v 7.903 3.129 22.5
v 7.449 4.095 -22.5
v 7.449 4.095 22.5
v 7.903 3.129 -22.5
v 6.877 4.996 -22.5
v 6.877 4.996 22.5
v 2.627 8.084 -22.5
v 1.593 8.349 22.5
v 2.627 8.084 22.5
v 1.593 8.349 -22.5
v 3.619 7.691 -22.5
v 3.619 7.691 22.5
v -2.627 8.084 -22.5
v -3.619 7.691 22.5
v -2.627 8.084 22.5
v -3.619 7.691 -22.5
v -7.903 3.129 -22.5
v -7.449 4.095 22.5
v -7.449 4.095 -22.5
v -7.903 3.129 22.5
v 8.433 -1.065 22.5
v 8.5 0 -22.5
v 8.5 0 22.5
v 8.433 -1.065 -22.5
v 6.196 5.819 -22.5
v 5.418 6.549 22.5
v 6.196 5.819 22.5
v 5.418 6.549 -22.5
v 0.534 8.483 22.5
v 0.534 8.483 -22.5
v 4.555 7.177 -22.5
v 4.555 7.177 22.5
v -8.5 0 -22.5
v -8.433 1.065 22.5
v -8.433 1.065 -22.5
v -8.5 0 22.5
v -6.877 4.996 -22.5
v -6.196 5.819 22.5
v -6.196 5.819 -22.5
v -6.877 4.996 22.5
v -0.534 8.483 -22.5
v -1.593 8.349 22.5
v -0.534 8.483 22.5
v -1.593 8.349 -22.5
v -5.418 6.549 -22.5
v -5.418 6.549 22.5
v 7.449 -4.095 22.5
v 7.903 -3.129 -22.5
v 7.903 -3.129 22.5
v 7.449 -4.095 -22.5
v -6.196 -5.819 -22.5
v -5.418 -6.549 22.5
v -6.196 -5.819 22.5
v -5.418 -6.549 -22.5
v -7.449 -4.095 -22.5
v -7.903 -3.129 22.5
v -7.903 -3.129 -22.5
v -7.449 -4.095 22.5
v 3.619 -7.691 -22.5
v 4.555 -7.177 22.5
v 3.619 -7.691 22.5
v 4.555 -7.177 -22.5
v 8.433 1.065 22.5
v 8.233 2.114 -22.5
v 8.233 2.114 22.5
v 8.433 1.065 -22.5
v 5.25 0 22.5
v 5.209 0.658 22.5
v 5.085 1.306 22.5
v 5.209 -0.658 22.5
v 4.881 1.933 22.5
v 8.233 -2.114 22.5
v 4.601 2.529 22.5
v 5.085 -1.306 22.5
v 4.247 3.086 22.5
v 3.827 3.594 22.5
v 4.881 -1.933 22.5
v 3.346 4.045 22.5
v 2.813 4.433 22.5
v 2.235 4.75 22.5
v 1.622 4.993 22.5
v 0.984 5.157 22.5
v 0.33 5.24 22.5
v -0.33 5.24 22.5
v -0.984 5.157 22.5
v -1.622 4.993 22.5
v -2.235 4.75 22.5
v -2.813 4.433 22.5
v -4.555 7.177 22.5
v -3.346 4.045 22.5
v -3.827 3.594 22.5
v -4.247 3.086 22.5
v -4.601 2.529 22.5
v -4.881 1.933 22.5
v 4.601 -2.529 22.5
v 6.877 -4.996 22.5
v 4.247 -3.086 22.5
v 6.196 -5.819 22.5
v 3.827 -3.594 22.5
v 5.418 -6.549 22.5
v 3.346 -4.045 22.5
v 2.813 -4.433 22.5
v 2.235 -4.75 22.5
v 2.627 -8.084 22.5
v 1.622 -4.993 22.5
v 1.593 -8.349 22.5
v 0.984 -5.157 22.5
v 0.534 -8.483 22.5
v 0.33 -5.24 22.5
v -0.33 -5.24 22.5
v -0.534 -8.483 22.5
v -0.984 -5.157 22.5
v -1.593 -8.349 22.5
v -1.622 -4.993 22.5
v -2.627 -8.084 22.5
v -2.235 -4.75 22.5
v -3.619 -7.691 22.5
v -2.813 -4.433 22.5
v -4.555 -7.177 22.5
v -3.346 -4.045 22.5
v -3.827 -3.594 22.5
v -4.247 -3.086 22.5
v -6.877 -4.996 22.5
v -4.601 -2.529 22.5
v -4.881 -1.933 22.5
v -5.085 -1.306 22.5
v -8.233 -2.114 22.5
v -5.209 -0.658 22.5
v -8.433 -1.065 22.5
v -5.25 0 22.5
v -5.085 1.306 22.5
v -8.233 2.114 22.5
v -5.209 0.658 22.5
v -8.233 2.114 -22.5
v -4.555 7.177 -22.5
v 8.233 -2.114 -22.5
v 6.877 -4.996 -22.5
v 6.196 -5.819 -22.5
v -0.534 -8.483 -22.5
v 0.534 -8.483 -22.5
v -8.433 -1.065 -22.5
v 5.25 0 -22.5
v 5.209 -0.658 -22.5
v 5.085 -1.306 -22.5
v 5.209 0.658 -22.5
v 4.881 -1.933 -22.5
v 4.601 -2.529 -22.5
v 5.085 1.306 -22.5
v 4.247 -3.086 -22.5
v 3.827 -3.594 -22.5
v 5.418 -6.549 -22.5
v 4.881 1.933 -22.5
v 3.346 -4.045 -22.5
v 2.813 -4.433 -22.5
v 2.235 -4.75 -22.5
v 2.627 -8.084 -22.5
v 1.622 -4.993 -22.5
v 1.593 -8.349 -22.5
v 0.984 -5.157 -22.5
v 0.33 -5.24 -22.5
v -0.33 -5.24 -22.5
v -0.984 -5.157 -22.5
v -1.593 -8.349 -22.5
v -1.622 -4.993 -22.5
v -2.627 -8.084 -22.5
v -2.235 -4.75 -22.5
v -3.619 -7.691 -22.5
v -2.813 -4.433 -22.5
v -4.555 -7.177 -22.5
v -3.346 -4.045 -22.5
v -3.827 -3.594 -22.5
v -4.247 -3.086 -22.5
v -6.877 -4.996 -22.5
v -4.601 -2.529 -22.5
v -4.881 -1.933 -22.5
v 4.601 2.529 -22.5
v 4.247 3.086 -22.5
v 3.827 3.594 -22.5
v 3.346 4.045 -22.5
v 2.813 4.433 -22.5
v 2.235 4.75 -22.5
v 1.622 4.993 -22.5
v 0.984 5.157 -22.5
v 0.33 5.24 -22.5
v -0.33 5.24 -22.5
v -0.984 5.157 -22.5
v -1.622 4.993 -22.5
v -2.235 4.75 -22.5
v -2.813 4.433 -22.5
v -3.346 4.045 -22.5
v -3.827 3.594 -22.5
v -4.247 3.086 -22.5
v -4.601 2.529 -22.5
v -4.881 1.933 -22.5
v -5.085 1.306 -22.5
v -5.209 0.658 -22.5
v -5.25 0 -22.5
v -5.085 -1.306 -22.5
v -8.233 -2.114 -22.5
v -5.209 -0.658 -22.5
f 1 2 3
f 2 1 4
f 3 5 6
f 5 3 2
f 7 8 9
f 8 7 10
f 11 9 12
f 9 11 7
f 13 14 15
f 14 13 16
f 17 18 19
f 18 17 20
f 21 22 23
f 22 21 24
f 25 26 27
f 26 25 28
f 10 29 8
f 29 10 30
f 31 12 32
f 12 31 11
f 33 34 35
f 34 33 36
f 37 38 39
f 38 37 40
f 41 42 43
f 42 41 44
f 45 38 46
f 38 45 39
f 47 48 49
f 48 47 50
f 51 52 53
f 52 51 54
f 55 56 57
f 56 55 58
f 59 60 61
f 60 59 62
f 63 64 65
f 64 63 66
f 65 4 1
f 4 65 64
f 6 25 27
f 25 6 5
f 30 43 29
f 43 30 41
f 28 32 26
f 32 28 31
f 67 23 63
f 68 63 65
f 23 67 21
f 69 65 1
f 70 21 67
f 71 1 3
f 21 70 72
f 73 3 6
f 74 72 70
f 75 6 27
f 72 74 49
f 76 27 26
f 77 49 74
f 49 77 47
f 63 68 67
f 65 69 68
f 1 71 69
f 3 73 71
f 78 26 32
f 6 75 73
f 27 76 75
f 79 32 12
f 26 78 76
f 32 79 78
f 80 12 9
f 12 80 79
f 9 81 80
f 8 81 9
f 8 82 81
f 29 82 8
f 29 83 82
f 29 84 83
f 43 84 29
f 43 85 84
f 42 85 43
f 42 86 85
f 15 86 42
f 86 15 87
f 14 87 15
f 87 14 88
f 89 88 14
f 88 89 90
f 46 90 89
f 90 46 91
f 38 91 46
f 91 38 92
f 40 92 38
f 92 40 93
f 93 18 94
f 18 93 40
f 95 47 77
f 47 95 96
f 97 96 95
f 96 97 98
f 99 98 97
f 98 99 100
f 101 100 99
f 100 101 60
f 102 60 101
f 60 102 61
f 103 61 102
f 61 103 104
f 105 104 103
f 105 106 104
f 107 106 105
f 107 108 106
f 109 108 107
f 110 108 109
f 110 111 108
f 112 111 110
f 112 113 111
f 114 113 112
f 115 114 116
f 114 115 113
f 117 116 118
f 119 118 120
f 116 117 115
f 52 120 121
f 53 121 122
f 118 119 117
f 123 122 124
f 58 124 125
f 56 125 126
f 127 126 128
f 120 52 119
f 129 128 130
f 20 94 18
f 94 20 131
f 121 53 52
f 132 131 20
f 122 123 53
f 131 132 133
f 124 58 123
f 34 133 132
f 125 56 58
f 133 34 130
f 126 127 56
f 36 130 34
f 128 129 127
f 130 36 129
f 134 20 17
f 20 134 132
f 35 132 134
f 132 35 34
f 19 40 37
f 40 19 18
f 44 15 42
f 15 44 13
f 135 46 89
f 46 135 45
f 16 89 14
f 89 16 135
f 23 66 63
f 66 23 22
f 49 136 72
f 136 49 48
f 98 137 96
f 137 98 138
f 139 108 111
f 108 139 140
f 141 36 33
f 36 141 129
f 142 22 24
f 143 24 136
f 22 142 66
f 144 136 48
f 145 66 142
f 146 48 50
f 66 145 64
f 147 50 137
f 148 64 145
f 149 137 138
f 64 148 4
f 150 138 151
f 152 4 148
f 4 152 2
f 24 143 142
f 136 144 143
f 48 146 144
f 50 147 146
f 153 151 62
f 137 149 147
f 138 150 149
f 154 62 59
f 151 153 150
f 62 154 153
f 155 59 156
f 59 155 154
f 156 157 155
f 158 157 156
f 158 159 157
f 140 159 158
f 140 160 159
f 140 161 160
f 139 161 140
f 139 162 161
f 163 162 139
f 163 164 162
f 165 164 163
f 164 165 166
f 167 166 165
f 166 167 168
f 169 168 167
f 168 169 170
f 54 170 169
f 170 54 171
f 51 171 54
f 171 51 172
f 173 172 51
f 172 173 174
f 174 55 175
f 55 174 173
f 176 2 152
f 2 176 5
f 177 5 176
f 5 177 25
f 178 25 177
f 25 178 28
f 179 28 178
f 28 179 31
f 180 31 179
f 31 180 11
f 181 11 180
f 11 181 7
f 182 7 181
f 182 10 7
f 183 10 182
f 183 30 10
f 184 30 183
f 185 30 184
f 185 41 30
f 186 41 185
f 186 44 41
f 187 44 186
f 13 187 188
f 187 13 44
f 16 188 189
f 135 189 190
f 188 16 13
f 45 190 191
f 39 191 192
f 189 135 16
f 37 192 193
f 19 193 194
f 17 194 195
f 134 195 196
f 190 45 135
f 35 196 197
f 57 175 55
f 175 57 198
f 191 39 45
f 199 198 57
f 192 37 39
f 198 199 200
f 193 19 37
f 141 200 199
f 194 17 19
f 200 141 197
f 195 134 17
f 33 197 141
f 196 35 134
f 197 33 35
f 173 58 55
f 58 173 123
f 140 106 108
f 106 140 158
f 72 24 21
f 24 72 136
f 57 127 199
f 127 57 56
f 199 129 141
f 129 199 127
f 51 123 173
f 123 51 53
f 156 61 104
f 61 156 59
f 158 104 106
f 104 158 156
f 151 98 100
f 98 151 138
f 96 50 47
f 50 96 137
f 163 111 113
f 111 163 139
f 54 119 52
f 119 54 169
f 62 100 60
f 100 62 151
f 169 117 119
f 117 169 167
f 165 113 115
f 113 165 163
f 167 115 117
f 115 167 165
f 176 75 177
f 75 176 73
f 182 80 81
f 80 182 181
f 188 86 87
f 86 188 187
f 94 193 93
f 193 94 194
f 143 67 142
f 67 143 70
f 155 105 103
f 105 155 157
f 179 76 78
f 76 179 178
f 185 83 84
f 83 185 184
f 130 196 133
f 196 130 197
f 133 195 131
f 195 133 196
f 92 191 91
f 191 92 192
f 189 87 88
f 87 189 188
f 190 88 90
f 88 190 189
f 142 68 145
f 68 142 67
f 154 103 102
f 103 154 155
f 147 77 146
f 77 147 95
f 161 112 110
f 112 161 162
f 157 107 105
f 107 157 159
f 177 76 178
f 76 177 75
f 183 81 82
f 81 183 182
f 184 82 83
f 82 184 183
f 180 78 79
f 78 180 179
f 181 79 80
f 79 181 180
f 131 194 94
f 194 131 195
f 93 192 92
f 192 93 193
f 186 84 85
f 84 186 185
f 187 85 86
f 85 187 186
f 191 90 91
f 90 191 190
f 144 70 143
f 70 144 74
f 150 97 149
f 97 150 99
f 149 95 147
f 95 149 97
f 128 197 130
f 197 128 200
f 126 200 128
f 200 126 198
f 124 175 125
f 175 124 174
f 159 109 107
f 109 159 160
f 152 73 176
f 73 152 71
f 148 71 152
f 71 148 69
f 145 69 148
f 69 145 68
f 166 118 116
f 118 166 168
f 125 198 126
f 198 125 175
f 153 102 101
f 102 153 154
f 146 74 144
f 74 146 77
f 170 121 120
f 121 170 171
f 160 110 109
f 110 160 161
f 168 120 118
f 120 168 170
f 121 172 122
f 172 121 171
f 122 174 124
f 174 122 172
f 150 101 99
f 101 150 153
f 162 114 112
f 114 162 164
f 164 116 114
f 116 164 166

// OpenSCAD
$fn = 50;


difference() {
	union() {
		translate(v = [0, 0, -22.5000000000]) {
			cylinder(h = 45, r = 8.5000000000);
		}
	}
	union() {
		translate(v = [0, 0, -100.0000000000]) {
			cylinder(h = 200, r = 5.2500000000);
		}
	}
}
